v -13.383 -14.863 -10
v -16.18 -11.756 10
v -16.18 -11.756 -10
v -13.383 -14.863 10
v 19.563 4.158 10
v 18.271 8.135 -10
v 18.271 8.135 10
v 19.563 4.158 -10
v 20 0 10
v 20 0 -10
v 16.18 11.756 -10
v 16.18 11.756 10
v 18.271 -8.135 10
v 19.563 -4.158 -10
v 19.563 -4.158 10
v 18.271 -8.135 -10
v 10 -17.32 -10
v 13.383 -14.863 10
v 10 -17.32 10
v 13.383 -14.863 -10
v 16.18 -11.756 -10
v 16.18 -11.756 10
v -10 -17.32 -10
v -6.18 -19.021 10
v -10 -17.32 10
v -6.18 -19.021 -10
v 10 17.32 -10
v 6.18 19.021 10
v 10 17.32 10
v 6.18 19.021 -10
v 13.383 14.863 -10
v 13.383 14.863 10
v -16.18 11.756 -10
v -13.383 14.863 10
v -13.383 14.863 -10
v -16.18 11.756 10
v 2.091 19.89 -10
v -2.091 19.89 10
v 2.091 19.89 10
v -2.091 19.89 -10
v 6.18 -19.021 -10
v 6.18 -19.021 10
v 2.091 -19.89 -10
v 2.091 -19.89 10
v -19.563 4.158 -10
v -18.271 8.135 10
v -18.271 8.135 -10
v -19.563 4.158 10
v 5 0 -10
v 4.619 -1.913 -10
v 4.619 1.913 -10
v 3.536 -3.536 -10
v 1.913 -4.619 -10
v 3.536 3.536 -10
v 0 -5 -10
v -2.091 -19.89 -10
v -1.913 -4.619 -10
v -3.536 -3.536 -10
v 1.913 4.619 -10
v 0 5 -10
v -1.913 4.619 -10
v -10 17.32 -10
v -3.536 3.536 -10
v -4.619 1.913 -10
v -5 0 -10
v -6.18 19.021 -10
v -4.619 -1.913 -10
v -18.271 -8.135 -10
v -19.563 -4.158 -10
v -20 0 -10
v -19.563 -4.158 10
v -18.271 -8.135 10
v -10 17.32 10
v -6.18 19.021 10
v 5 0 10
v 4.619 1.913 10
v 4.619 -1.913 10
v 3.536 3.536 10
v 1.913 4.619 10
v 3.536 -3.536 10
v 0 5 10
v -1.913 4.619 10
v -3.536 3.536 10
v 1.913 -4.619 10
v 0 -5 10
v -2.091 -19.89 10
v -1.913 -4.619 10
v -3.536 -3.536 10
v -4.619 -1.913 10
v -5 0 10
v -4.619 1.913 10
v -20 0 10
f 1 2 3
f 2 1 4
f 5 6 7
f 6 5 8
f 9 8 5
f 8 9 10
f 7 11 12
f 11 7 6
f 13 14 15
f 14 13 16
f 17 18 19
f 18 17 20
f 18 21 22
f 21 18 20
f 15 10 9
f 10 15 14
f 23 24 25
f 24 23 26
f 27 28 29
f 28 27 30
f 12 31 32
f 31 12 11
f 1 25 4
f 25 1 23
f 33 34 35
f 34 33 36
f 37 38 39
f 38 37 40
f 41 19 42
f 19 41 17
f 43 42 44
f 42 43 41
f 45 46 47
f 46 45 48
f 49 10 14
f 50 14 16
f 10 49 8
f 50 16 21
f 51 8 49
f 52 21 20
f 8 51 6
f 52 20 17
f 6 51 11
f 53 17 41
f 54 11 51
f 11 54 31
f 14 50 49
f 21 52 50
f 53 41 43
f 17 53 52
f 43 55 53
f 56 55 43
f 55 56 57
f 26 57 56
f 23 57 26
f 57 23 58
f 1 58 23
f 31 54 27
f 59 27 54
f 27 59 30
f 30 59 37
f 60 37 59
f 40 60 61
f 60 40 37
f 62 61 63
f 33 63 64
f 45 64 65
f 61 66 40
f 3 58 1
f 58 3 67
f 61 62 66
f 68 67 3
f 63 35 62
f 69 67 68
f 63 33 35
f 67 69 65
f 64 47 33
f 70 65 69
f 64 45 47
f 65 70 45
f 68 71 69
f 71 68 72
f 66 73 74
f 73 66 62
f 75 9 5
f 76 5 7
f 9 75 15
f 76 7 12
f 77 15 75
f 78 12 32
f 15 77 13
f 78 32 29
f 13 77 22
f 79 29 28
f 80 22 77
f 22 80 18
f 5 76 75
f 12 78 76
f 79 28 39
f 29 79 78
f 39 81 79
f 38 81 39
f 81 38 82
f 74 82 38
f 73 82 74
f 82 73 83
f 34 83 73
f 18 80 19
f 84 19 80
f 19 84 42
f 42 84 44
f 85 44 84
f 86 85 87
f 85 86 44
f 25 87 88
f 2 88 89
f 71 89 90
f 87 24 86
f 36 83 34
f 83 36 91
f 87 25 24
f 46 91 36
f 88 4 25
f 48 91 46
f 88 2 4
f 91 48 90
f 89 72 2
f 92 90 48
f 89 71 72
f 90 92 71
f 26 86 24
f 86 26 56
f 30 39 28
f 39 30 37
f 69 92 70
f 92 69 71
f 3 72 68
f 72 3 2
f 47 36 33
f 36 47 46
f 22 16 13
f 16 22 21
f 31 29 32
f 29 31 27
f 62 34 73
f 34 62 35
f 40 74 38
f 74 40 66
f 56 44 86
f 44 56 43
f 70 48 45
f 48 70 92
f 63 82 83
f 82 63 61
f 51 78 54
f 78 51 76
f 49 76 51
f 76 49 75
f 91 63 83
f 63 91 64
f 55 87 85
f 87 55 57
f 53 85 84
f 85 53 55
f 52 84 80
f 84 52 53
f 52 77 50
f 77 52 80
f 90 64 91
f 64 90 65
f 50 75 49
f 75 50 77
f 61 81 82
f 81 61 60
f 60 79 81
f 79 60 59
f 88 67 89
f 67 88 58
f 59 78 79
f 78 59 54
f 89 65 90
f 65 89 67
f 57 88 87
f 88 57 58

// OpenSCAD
// Central Cylinder Parameters
cylinder_diameter = 40; // Diameter of the central cylinder
cylinder_height = 20;   // Height of the central cylinder
hole_diameter = 10;     // Diameter of the central hole

// Central Cylinder Module
module central_cylinder() {
    difference() {
        // Main body of the cylinder
        cylinder(d = cylinder_diameter, h = cylinder_height, center = true);
        // Central hole
        cylinder(d = hole_diameter, h = cylinder_height + 2, center = true);
    }
}

// Render the central cylinder
central_cylinder();
